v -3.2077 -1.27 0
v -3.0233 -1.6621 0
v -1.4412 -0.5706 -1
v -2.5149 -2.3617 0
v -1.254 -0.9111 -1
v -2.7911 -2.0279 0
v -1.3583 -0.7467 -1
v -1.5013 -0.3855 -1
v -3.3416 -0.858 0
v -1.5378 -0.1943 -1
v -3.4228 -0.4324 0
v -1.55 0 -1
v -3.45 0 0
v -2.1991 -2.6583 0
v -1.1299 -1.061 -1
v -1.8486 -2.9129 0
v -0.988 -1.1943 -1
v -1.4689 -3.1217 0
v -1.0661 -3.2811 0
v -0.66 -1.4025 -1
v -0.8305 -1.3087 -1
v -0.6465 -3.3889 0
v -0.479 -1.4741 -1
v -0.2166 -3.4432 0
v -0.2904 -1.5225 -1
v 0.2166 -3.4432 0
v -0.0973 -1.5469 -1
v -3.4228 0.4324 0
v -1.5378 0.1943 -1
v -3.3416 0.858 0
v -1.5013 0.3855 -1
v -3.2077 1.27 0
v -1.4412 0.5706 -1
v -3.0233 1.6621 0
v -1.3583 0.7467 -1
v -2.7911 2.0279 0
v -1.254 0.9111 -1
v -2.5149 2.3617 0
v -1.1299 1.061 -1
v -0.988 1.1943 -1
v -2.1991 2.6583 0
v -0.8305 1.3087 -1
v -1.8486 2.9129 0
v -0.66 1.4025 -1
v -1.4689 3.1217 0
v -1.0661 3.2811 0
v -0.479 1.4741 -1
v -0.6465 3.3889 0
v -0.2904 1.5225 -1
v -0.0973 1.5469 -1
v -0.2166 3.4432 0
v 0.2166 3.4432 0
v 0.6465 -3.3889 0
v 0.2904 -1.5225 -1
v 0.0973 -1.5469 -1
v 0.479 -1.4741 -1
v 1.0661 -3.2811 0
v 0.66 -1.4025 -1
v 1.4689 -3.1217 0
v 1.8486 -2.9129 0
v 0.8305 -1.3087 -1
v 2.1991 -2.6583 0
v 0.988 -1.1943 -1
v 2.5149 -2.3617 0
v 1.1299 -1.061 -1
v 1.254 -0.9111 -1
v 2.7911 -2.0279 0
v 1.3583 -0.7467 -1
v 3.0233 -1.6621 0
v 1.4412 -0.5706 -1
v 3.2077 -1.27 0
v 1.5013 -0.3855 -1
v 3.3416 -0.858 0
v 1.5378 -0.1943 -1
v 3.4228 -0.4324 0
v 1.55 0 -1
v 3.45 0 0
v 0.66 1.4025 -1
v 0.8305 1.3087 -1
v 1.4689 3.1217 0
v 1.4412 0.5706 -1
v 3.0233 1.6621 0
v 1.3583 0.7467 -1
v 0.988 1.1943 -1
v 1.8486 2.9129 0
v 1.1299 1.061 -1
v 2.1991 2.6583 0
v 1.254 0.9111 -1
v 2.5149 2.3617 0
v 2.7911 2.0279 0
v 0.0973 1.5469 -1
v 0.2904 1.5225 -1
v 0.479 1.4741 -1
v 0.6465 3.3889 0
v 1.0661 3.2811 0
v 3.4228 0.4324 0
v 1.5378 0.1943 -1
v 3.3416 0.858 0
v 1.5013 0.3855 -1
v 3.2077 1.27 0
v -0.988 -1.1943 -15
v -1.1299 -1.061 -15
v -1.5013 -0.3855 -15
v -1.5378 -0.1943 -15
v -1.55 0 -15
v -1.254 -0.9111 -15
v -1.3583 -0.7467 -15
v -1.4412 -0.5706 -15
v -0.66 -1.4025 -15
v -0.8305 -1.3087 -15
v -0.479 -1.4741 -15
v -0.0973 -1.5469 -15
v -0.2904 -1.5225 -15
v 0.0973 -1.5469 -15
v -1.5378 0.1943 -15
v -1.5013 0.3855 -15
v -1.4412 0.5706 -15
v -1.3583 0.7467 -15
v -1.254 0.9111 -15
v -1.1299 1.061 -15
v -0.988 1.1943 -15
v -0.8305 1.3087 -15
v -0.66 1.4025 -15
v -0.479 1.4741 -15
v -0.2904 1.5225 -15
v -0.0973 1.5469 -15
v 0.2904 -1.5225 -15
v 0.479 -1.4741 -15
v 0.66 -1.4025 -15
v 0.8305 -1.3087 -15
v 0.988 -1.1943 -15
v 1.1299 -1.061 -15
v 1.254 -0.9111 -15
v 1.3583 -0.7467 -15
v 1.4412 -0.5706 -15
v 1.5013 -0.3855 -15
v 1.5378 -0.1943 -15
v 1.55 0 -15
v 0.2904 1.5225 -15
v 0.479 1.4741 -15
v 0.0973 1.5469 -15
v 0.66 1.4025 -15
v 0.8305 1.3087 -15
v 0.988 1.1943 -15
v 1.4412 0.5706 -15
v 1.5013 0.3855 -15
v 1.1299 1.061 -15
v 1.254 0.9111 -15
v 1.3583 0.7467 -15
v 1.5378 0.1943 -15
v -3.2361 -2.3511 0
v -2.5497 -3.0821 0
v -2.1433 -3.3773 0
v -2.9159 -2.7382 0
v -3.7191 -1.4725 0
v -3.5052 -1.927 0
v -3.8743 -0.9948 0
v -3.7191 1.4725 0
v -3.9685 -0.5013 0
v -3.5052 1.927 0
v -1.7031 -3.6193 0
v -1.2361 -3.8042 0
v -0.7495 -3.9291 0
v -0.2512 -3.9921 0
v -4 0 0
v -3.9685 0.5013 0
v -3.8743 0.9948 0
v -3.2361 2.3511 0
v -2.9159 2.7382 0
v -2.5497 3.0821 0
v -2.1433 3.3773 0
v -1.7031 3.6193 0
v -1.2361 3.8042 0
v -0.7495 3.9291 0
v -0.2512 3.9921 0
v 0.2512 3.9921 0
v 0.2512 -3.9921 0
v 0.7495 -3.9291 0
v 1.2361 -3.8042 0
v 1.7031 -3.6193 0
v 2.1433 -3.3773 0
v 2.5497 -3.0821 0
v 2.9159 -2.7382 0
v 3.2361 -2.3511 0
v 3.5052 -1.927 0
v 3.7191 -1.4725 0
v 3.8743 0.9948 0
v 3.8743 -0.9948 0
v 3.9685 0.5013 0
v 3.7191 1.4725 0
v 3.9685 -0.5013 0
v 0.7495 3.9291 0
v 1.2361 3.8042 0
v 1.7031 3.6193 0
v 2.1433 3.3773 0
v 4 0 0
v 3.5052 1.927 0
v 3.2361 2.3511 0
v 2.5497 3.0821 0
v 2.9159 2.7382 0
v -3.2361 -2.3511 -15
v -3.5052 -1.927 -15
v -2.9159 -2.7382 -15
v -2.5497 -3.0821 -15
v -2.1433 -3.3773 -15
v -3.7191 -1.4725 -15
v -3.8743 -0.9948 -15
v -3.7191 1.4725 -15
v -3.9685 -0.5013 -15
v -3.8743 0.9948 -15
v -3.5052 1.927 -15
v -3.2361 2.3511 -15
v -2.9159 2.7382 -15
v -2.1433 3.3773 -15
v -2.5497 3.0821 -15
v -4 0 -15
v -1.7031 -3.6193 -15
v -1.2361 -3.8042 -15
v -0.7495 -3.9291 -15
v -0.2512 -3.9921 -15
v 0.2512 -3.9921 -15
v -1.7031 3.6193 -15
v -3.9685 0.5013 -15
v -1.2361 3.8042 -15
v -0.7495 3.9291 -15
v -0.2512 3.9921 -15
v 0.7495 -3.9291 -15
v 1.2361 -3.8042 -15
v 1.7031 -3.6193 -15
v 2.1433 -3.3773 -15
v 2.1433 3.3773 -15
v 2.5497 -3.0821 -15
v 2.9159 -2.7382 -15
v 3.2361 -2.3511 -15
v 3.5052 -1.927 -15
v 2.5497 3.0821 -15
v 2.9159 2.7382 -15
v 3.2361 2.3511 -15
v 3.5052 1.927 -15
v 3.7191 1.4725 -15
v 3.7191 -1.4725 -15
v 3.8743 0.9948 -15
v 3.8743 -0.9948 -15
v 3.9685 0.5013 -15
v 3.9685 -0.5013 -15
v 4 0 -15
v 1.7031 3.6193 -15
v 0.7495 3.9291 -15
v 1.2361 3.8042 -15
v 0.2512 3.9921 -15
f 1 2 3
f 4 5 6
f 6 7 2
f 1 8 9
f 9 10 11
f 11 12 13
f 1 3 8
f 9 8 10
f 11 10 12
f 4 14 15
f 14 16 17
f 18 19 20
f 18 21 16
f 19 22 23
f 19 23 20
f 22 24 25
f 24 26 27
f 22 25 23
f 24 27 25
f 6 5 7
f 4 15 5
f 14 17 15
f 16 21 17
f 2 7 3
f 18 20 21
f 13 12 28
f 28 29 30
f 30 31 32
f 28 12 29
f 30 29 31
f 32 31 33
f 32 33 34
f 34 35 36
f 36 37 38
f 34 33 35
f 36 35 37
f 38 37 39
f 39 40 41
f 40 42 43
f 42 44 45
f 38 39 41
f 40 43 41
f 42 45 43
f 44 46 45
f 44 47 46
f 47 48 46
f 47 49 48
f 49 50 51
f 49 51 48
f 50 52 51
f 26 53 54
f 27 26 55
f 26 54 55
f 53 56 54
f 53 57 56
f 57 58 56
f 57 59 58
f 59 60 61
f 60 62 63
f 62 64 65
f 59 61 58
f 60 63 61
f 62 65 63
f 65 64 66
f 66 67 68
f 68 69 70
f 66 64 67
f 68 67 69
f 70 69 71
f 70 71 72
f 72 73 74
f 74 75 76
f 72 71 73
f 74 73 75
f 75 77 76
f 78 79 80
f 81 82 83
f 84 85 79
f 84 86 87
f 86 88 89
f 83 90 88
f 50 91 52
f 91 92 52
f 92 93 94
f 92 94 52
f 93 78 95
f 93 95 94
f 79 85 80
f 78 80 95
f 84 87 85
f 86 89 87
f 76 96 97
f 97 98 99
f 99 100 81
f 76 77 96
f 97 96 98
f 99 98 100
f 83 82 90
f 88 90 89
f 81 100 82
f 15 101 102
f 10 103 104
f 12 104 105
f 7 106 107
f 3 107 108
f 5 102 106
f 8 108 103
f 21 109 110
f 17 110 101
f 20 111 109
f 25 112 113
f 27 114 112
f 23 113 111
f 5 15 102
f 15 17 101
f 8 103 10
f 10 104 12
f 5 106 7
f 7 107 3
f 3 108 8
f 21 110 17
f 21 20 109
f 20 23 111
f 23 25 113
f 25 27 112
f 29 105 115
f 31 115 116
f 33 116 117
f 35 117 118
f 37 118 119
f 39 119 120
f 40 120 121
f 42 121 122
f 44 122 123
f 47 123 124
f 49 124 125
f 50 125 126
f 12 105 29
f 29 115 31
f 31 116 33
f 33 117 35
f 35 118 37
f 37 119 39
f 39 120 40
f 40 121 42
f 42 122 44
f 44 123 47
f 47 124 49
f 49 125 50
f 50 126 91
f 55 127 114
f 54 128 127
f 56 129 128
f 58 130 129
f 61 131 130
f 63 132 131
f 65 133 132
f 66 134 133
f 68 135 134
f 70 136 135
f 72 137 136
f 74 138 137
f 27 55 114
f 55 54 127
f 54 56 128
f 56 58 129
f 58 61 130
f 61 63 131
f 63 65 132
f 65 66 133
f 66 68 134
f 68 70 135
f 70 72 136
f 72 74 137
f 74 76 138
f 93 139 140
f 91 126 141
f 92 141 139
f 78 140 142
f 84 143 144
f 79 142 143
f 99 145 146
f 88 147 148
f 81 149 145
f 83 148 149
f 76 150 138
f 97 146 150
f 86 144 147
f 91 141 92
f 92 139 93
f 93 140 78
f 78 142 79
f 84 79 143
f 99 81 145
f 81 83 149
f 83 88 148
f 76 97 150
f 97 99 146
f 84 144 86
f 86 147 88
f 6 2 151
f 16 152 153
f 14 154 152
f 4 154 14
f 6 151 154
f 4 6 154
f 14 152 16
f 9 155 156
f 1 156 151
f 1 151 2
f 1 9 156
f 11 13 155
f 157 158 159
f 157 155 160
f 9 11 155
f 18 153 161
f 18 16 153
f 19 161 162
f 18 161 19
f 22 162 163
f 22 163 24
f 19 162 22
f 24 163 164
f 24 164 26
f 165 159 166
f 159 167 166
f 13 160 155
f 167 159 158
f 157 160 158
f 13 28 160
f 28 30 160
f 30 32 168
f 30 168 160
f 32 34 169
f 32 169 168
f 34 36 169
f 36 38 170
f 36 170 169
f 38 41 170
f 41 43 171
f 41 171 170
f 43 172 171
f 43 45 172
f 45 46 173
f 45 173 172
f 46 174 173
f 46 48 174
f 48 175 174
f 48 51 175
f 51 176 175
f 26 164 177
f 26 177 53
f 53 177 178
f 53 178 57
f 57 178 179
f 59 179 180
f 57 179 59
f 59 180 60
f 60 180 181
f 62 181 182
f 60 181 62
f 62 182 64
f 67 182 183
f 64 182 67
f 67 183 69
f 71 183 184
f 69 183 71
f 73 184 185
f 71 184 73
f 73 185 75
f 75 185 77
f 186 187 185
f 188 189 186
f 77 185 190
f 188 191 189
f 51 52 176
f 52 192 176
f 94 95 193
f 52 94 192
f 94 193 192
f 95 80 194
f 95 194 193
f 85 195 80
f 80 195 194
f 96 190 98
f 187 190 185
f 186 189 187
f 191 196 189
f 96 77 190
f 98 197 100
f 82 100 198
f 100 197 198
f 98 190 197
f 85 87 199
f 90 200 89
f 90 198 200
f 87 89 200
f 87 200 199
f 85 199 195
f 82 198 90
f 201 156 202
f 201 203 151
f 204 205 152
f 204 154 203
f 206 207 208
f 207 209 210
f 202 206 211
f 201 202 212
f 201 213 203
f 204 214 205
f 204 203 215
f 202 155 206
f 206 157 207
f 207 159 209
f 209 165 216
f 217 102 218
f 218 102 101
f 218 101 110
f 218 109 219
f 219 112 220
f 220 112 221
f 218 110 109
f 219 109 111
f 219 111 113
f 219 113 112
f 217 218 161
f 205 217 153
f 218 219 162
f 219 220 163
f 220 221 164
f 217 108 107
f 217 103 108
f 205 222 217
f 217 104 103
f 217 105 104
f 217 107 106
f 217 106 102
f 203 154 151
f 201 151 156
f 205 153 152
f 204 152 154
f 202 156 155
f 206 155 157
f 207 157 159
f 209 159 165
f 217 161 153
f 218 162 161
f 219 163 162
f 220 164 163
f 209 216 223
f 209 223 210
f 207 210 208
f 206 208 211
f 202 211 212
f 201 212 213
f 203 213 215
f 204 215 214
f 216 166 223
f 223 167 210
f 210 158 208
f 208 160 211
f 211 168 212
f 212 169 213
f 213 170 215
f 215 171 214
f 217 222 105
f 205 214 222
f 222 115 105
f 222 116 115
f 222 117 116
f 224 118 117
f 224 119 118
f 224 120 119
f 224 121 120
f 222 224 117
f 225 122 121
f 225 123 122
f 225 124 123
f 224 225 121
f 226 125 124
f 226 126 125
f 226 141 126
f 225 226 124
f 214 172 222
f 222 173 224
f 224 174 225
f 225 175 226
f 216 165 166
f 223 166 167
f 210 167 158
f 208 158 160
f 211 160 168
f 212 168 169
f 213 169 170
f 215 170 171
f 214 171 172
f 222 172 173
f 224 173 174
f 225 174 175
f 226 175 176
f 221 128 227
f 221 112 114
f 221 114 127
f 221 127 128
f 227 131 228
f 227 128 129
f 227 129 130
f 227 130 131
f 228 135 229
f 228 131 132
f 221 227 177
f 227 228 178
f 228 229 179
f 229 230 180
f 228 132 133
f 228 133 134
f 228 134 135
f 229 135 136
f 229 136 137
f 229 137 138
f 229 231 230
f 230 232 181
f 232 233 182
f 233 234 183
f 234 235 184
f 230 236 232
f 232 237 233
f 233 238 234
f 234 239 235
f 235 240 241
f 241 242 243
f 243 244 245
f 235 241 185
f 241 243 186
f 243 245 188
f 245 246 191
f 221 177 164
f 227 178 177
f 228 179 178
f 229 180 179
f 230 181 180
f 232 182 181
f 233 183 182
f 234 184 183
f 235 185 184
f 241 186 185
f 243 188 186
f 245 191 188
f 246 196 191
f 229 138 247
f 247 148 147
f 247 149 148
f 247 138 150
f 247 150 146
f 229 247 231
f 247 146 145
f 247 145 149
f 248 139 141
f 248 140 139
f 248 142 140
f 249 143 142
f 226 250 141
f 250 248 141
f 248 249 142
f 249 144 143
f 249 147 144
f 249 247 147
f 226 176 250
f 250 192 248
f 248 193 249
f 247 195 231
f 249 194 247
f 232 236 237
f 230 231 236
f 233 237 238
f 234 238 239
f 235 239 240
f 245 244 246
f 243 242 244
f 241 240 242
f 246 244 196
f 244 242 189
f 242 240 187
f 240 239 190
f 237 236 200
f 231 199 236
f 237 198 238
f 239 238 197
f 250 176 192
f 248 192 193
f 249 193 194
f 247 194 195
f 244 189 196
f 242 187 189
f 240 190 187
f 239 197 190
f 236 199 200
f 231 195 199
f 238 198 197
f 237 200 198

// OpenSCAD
$fn = 50;

difference() {
	union() {
		translate(v = [0, 0, -15.0]) {
			cylinder(h = 15, r = 4.0);
		}
	}
	union() {
		translate(v = [0, 0, 0]) {
			rotate(a = [0, 0, 0]) {
				difference() {
					union() {
						translate(v = [0, 0, -18.0]) {
							cylinder(h = 18, r = 1.25);
						}
						translate(v = [0, 0, -1.0]) {
							cylinder(h = 1.0, r1 = 1.55, r2 = 3.45);
						}
						translate(v = [0, 0, -18.0]) {
							cylinder(h = 18, r = 1.55);
						}
						translate(v = [0, 0, -18.0]) {
							cylinder(h = 18, r = 1.25);
						}
					}
					union();
				}
			}
		}
	}
}
